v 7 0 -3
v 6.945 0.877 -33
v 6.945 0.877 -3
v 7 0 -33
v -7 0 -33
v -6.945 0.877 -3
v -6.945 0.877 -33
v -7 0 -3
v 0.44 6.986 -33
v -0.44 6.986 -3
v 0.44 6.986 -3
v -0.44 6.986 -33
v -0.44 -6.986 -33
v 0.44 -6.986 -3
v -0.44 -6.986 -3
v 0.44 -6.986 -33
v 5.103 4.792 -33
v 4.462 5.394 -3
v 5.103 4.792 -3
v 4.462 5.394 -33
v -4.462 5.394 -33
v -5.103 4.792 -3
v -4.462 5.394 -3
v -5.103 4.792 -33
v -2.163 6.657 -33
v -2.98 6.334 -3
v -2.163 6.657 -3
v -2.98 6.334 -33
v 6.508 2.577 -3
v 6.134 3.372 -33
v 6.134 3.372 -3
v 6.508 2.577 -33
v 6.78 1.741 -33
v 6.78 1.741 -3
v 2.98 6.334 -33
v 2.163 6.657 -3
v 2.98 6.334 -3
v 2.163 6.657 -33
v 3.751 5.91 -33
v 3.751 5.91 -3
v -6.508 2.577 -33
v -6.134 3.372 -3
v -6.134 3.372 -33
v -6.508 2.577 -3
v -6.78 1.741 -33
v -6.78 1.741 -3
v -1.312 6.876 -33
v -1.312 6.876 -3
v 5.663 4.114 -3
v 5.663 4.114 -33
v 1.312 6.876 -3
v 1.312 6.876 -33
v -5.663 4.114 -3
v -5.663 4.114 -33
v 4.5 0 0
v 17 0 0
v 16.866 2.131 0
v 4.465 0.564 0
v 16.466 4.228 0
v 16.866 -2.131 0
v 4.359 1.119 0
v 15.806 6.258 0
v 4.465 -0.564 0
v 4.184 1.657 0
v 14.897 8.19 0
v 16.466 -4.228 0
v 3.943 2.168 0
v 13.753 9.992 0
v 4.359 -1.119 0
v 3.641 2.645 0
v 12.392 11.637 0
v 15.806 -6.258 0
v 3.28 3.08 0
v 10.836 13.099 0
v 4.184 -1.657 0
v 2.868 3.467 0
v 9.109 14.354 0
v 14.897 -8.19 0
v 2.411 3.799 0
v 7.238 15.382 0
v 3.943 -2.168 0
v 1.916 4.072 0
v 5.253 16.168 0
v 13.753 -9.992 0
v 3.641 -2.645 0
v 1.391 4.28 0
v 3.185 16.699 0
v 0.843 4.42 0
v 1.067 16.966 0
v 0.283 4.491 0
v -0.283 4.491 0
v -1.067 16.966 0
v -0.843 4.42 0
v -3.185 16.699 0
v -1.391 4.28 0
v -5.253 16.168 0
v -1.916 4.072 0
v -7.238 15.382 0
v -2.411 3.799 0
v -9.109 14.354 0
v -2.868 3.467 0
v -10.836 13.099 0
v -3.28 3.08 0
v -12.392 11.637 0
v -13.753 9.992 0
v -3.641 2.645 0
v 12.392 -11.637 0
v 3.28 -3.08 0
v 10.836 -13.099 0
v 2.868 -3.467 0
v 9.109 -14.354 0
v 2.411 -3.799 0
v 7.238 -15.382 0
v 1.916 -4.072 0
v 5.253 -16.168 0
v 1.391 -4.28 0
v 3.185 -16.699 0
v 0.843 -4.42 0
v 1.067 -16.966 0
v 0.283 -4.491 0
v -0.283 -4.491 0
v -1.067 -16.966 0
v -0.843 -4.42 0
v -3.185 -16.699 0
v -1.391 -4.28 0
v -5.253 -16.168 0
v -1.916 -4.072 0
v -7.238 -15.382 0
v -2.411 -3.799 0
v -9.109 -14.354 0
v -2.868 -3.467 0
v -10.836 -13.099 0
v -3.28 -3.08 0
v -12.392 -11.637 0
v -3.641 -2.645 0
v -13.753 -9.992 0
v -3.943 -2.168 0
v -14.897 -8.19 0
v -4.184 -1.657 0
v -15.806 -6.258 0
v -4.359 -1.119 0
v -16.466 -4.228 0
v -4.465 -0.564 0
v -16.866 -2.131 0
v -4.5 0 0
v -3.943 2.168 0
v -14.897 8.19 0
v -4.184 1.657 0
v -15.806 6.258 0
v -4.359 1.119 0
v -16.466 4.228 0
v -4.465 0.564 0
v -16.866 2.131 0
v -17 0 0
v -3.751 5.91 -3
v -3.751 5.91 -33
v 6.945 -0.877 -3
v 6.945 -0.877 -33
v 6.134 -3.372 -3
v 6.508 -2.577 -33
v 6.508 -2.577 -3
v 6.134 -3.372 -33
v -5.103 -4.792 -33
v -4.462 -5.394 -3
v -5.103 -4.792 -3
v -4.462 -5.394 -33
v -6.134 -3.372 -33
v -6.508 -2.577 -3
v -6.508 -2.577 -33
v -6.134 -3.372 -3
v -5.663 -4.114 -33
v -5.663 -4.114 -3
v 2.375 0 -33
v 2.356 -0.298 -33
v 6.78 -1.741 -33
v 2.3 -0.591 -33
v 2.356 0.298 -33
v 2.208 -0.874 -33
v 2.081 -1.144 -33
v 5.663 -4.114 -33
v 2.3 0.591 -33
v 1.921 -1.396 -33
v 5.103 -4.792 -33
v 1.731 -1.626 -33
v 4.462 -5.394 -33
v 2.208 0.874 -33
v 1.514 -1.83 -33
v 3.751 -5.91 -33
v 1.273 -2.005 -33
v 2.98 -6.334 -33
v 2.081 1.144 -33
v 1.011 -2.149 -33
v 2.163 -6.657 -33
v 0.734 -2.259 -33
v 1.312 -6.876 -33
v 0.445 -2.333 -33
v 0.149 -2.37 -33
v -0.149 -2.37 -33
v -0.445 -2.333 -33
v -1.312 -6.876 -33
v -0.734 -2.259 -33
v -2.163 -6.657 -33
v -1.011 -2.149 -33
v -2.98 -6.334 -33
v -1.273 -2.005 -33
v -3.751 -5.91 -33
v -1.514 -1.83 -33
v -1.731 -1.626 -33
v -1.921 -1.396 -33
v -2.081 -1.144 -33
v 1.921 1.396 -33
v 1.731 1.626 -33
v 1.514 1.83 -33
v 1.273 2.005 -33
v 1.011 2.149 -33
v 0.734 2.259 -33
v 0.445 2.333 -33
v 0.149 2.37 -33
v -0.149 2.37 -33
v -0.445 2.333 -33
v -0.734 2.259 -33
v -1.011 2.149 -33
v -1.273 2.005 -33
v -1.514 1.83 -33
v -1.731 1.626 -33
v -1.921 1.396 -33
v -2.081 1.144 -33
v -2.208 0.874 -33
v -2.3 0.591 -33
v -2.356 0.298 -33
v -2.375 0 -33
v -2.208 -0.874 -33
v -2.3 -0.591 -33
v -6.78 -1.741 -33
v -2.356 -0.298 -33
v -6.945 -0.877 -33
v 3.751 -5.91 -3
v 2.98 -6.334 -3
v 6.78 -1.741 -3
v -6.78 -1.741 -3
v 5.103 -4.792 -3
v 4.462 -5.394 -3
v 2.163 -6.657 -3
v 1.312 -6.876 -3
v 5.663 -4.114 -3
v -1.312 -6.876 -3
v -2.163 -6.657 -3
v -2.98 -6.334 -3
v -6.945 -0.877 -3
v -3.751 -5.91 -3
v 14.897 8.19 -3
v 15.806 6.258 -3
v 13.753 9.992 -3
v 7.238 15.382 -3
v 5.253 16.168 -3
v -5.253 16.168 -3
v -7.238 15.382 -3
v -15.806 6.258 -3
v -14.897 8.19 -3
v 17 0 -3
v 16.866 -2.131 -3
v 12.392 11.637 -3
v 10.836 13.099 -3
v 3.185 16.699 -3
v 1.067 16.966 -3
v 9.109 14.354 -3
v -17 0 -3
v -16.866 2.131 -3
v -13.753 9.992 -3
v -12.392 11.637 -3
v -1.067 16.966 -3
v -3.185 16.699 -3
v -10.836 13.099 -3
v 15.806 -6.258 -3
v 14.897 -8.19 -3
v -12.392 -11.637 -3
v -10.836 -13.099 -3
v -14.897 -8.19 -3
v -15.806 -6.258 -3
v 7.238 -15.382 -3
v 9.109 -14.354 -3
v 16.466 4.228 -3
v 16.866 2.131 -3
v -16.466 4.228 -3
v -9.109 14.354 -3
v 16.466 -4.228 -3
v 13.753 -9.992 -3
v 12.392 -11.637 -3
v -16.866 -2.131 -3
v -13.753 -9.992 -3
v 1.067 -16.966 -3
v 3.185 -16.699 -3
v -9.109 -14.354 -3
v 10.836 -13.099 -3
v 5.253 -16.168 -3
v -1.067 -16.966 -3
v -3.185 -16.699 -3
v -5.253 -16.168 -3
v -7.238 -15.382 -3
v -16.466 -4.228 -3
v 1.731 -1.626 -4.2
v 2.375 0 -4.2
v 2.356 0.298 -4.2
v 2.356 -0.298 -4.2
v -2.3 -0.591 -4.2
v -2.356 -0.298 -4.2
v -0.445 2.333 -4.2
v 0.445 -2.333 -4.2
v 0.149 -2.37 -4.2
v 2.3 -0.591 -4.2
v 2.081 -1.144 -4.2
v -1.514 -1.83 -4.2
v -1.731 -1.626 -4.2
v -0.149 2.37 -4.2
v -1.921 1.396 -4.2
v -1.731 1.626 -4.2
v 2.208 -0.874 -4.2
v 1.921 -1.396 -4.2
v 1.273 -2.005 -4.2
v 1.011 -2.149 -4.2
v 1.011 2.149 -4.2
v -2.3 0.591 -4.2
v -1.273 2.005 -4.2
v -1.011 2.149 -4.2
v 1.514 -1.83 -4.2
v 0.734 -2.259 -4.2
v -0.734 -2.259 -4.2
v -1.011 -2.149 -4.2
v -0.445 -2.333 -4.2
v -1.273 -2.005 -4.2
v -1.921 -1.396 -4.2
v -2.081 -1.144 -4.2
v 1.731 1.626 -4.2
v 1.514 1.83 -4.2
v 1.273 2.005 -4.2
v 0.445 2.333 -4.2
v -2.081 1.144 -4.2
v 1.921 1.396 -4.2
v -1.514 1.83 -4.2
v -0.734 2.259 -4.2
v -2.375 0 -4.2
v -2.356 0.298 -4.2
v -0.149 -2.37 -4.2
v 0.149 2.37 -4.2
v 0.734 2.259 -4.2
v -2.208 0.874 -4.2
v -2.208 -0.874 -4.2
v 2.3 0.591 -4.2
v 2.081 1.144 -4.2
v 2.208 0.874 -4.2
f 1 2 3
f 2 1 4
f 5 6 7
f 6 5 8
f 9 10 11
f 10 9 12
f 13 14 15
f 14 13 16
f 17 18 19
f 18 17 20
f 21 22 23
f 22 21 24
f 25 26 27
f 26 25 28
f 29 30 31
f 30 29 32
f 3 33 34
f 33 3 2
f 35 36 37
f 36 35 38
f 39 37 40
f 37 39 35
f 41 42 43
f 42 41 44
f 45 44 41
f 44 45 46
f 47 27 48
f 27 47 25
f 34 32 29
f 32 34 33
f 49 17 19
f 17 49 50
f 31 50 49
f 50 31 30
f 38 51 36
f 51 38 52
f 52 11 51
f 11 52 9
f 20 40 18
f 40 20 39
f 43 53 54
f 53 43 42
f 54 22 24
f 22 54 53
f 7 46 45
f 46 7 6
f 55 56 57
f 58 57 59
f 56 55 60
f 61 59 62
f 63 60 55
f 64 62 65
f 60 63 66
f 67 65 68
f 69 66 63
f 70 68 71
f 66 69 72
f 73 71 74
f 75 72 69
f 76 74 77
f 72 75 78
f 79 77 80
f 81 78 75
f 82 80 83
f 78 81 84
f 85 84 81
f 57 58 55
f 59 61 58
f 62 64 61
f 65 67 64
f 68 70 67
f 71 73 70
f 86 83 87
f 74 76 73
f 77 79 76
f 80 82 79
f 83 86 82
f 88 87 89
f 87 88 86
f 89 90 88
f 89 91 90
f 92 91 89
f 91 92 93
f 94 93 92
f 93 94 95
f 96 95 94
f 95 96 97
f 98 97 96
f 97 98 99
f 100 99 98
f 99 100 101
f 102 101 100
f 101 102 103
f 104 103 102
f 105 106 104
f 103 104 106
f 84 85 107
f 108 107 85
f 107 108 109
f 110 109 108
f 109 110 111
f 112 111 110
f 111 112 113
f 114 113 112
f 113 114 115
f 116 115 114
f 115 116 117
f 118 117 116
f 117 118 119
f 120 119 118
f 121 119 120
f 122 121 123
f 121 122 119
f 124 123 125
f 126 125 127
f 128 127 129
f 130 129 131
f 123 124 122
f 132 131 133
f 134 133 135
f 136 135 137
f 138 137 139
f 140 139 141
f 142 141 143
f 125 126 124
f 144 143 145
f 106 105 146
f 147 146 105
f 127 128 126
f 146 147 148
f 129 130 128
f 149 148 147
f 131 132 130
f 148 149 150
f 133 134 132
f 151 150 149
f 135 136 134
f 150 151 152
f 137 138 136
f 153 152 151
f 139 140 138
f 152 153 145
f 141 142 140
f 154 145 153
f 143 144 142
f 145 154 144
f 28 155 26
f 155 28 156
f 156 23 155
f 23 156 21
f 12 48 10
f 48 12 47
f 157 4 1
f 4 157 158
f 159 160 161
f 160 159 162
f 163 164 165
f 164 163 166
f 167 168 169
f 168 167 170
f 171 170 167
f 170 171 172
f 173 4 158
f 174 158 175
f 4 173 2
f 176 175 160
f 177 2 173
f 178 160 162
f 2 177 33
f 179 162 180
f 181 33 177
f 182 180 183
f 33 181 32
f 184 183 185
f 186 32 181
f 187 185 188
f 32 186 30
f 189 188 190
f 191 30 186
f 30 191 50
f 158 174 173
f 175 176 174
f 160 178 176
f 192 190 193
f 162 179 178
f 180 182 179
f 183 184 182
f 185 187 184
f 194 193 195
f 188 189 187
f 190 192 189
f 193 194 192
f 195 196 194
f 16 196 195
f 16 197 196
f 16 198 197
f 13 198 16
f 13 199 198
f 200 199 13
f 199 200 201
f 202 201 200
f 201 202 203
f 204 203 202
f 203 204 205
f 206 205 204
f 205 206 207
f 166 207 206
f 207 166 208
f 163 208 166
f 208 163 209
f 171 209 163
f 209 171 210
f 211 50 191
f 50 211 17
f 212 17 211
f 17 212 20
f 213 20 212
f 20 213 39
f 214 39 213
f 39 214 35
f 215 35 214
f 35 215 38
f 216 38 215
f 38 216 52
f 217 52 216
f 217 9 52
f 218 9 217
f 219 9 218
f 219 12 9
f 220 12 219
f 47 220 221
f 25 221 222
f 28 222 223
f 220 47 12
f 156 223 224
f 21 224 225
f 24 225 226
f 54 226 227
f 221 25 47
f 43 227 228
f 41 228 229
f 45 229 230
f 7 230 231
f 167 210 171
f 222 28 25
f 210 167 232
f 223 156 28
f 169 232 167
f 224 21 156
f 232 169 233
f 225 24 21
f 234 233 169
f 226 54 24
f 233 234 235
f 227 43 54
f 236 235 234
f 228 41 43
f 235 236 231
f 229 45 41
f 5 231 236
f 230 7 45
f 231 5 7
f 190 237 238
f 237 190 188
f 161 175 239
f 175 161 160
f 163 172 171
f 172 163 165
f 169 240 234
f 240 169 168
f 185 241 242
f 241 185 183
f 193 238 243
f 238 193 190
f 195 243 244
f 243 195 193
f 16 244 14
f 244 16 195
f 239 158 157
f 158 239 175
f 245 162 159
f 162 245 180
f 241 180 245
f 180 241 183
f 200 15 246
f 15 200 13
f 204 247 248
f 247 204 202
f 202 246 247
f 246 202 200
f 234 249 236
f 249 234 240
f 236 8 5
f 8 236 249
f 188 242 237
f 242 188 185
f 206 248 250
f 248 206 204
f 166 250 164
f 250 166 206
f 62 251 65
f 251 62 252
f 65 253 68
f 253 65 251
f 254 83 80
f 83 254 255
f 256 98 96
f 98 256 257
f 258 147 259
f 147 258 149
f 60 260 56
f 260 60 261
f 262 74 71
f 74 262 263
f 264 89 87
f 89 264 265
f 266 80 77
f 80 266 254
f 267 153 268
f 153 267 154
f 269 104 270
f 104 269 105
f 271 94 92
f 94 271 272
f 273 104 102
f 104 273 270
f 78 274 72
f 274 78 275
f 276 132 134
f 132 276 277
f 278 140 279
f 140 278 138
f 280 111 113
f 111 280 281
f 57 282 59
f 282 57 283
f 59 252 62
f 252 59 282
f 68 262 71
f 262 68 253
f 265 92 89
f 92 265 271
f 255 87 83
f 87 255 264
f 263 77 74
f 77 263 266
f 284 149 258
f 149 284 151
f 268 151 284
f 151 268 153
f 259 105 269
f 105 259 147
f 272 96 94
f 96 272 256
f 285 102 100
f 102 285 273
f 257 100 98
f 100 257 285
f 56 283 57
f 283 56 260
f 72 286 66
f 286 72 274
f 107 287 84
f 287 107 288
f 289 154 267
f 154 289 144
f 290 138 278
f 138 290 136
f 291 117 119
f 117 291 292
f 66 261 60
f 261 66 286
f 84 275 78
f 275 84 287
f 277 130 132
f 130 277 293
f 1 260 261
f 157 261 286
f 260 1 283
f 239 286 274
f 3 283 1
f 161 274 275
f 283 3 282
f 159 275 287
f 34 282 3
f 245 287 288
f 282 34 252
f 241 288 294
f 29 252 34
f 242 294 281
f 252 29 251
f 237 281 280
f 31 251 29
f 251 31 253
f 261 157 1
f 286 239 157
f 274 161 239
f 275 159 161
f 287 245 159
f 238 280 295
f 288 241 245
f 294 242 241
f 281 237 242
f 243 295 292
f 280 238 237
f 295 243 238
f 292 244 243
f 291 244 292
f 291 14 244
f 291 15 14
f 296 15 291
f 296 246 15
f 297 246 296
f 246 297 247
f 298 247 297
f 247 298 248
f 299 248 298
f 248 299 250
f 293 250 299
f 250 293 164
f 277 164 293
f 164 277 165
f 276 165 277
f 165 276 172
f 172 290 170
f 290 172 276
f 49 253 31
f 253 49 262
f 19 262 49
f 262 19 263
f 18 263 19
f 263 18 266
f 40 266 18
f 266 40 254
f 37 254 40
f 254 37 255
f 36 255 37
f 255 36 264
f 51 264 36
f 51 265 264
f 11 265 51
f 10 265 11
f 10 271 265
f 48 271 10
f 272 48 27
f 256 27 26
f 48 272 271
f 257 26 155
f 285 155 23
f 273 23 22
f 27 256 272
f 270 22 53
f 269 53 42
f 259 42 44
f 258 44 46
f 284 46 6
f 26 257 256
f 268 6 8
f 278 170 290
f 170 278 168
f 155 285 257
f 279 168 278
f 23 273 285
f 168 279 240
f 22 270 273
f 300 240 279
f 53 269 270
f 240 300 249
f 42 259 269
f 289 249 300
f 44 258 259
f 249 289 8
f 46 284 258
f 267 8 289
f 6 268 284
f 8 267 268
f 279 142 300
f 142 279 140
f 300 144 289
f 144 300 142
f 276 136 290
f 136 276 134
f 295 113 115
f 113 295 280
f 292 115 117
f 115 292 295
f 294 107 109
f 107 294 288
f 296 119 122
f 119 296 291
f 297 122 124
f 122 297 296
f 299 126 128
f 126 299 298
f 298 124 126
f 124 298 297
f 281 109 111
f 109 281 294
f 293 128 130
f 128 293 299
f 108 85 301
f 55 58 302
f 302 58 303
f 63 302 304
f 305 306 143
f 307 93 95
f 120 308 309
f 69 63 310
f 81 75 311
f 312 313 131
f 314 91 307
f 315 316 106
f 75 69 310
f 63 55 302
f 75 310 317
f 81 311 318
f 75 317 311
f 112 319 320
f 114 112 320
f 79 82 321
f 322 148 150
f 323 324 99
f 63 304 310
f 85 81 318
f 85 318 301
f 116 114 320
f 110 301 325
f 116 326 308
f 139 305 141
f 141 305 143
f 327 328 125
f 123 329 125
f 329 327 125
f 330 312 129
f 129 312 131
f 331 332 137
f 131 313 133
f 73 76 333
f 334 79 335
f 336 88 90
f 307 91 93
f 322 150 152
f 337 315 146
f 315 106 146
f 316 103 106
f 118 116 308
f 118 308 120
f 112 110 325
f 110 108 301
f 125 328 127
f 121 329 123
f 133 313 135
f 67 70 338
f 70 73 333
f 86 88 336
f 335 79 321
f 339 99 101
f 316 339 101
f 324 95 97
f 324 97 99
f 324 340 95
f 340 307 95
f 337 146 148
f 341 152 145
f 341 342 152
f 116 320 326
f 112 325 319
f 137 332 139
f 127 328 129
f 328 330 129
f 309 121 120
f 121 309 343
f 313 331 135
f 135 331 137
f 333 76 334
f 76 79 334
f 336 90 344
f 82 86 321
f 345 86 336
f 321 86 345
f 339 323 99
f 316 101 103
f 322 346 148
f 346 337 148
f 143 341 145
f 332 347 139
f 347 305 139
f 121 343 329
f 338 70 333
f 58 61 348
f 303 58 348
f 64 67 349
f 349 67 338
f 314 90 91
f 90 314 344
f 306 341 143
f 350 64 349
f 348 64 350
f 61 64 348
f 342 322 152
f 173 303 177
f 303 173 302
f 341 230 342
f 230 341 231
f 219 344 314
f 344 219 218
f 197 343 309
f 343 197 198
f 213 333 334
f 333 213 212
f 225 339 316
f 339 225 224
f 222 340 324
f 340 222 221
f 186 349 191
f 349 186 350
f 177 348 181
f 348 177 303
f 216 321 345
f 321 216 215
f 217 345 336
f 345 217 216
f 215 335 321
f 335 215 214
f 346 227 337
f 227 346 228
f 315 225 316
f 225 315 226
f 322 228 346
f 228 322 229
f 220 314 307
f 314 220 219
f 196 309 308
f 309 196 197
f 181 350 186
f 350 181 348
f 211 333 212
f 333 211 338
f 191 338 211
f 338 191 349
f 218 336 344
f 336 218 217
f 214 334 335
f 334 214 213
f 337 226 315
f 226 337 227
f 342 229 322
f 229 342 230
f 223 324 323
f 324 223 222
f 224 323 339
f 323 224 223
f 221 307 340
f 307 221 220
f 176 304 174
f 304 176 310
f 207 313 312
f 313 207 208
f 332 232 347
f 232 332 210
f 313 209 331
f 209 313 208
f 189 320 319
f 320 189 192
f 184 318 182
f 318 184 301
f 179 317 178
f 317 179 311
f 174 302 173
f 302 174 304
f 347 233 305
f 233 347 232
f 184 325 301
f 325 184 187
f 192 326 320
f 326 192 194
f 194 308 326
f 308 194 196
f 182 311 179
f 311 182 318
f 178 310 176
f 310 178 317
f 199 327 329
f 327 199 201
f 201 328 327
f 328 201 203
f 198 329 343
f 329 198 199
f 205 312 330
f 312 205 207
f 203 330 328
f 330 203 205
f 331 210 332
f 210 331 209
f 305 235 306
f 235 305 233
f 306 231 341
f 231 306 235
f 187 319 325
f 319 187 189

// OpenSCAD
$fn = 50;


difference() {
	union() {
		translate(v = [0, 0, -33.0000000000]) {
			cylinder(h = 33, r = 7.0000000000);
		}
		translate(v = [0, 0, -3.0000000000]) {
			cylinder(h = 3, r = 17.0000000000);
		}
	}
	union() {
		translate(v = [0, 0, 0]) {
			rotate(a = [0, 0, 0]) {
				difference() {
					union() {
						#translate(v = [0, 0, -33.0000000000]) {
							cylinder(h = 33, r = 2.2500000000);
						}
						#translate(v = [0, 0, -4.2000000000]) {
							cylinder(h = 4.2000000000, r1 = 2.3750000000, r2 = 4.5000000000);
						}
						#translate(v = [0, 0, -33.0000000000]) {
							cylinder(h = 33, r = 2.3750000000);
						}
						#translate(v = [0, 0, -33.0000000000]) {
							cylinder(h = 33, r = 2.2500000000);
						}
					}
					union();
				}
			}
		}
	}
}
